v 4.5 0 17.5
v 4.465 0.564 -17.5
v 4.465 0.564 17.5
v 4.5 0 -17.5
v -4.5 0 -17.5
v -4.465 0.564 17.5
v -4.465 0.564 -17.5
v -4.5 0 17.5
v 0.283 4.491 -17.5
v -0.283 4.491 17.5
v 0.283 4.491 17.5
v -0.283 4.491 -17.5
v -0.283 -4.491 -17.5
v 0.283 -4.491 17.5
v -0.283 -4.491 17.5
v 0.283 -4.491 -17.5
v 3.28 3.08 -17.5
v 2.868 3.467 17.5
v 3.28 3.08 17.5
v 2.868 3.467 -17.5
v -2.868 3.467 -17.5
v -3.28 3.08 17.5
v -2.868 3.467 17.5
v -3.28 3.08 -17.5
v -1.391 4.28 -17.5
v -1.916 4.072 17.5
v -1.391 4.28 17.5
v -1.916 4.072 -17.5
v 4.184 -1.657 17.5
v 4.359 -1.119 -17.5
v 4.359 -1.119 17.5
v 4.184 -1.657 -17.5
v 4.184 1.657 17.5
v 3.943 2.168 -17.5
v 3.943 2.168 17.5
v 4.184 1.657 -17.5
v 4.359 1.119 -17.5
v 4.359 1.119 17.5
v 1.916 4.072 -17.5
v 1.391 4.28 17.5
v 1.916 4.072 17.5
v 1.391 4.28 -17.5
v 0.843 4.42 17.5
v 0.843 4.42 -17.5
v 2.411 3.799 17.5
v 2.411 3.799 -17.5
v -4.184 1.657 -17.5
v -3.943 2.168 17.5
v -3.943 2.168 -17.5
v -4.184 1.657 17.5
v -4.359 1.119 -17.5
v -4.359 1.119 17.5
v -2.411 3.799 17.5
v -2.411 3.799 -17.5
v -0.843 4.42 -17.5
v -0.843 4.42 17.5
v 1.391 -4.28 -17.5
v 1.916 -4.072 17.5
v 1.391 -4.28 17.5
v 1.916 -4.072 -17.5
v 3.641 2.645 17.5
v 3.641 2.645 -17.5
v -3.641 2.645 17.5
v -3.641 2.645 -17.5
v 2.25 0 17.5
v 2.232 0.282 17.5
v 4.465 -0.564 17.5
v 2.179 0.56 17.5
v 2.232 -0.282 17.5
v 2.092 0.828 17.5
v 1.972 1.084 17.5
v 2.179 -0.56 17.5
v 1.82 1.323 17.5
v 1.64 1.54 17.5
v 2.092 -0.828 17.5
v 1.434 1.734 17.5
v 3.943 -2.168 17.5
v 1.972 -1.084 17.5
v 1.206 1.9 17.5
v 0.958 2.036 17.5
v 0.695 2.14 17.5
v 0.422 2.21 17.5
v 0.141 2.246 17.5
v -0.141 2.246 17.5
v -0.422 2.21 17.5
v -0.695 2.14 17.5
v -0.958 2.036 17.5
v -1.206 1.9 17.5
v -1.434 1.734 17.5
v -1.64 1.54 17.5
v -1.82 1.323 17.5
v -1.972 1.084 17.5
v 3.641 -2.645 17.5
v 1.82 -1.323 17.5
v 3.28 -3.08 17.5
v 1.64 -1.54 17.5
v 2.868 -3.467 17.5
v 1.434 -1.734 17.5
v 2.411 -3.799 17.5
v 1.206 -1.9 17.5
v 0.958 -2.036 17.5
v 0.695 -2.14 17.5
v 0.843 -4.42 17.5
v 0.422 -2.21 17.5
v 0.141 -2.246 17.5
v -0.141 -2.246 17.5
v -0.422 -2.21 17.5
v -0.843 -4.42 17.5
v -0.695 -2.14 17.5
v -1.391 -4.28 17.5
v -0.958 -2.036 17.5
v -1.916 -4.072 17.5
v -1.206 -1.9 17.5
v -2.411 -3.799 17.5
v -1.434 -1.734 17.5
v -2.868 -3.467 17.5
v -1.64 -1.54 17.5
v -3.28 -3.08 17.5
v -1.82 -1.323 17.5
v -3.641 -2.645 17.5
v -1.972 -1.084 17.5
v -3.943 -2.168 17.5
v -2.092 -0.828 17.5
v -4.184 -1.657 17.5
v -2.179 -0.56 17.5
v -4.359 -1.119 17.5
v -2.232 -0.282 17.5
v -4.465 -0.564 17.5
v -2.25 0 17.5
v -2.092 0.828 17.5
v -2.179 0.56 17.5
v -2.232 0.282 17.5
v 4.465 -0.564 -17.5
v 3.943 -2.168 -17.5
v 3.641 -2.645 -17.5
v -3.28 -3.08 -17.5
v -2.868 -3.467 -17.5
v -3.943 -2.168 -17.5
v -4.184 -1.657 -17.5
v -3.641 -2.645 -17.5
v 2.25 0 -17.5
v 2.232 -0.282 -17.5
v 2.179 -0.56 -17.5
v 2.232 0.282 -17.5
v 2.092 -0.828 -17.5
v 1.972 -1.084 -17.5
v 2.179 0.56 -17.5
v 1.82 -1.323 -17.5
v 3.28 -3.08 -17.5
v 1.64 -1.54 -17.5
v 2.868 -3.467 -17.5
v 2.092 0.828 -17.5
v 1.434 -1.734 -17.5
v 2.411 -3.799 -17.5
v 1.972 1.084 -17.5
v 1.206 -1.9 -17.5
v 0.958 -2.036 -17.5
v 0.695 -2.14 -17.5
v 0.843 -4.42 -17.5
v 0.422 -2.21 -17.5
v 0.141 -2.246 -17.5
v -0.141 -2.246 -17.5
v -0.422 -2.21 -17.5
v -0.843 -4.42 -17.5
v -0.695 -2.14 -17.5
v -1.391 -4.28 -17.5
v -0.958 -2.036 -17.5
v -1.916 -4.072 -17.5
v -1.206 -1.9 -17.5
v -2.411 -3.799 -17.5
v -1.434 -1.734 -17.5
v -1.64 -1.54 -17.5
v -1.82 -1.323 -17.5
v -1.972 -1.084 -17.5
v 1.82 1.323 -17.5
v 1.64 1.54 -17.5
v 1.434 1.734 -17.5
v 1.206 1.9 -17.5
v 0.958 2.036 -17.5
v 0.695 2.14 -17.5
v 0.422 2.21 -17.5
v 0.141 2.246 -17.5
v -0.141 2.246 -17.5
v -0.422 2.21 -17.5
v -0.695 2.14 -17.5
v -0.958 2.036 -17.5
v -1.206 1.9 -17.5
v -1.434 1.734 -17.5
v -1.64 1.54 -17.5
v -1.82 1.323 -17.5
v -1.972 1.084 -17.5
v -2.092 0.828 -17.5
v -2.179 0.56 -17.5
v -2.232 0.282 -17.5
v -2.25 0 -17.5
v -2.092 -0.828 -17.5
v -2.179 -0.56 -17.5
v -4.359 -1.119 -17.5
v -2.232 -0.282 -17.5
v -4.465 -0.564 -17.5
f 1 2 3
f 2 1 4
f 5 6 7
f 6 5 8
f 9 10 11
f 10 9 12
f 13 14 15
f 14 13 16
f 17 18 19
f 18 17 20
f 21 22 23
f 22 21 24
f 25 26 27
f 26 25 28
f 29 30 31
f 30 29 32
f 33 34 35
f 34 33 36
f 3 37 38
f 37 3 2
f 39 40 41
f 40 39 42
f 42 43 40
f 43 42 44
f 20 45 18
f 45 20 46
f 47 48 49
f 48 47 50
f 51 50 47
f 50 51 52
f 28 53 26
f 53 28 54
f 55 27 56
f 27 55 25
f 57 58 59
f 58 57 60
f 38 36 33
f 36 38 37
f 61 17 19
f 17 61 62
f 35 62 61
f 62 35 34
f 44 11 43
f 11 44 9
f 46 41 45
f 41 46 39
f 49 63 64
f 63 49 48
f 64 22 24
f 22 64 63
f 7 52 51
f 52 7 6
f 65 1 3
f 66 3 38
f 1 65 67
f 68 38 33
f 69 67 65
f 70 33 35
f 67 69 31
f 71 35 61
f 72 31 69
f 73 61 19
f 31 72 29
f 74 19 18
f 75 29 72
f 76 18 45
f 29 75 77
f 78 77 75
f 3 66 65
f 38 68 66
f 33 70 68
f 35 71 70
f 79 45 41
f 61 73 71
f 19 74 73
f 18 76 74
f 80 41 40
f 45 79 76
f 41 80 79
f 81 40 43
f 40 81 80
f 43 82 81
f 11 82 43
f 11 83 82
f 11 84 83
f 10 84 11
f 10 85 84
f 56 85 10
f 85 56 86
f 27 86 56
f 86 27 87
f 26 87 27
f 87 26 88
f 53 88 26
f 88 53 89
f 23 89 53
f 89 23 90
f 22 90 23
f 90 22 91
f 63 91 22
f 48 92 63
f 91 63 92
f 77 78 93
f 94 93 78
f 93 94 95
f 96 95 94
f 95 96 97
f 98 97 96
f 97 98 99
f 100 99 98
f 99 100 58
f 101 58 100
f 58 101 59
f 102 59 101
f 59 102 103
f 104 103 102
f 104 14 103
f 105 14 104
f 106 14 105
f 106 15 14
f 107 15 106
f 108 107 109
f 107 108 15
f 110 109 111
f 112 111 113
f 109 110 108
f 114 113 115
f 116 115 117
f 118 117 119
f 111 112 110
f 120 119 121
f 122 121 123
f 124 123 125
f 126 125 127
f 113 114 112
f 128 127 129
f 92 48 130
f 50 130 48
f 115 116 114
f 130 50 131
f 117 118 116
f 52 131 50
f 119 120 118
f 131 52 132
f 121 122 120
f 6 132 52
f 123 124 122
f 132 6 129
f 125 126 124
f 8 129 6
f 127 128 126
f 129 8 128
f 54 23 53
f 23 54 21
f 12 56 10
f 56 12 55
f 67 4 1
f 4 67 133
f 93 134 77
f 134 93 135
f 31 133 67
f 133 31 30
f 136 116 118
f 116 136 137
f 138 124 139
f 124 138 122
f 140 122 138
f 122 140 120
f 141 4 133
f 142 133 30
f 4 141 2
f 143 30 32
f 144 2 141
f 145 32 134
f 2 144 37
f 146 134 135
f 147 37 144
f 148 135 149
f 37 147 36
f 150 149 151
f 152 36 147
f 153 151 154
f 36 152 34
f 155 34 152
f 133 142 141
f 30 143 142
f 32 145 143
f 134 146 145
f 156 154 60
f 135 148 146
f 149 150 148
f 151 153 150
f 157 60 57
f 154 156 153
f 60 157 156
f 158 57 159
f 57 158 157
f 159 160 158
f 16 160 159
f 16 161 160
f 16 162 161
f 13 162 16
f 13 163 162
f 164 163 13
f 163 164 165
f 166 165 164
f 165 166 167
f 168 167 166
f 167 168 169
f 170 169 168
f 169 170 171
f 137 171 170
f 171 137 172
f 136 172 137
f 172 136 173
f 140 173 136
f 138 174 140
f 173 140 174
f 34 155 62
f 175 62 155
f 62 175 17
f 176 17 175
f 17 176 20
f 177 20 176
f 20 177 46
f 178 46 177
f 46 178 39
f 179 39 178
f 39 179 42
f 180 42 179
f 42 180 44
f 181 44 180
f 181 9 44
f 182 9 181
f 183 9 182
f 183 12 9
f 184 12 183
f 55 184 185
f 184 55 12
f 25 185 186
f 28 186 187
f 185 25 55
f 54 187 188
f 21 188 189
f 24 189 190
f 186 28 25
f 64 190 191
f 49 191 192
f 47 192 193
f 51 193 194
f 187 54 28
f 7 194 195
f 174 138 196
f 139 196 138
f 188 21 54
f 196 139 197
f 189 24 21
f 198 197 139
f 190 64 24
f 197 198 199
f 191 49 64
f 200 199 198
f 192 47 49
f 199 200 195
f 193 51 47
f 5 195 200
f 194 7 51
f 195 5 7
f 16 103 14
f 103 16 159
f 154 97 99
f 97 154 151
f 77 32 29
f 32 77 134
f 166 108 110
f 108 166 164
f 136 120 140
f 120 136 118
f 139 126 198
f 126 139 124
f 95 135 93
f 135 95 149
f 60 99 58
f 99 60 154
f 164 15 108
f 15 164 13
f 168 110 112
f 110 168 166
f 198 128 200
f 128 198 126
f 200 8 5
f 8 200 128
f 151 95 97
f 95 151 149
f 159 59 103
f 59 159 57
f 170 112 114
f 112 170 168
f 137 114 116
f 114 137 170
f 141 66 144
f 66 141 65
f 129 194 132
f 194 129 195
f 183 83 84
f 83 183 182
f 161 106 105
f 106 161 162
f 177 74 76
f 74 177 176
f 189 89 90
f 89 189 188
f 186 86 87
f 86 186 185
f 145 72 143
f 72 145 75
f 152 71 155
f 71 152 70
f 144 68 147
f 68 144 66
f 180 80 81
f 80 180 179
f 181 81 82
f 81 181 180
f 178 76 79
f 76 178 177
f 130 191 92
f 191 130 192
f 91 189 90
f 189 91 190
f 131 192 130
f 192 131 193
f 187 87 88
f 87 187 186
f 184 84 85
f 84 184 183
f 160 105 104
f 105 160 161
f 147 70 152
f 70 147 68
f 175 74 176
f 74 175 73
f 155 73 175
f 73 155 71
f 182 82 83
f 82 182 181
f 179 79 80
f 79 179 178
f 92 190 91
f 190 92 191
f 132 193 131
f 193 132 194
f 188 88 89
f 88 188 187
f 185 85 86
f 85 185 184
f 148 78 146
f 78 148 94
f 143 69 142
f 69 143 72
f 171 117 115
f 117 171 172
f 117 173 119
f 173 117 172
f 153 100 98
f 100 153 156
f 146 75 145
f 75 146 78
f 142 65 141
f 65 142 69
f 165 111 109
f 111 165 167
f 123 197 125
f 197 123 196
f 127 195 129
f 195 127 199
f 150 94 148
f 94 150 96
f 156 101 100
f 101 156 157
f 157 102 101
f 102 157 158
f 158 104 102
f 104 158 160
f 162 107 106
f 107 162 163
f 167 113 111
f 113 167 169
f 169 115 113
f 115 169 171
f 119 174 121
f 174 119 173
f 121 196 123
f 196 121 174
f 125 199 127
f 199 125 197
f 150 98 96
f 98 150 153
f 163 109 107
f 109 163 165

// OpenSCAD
$fn = 50;


difference() {
	union() {
		translate(v = [0, 0, -17.5000000000]) {
			cylinder(h = 35, r = 4.5000000000);
		}
	}
	union() {
		translate(v = [0, 0, -100.0000000000]) {
			cylinder(h = 200, r = 2.2500000000);
		}
	}
}
